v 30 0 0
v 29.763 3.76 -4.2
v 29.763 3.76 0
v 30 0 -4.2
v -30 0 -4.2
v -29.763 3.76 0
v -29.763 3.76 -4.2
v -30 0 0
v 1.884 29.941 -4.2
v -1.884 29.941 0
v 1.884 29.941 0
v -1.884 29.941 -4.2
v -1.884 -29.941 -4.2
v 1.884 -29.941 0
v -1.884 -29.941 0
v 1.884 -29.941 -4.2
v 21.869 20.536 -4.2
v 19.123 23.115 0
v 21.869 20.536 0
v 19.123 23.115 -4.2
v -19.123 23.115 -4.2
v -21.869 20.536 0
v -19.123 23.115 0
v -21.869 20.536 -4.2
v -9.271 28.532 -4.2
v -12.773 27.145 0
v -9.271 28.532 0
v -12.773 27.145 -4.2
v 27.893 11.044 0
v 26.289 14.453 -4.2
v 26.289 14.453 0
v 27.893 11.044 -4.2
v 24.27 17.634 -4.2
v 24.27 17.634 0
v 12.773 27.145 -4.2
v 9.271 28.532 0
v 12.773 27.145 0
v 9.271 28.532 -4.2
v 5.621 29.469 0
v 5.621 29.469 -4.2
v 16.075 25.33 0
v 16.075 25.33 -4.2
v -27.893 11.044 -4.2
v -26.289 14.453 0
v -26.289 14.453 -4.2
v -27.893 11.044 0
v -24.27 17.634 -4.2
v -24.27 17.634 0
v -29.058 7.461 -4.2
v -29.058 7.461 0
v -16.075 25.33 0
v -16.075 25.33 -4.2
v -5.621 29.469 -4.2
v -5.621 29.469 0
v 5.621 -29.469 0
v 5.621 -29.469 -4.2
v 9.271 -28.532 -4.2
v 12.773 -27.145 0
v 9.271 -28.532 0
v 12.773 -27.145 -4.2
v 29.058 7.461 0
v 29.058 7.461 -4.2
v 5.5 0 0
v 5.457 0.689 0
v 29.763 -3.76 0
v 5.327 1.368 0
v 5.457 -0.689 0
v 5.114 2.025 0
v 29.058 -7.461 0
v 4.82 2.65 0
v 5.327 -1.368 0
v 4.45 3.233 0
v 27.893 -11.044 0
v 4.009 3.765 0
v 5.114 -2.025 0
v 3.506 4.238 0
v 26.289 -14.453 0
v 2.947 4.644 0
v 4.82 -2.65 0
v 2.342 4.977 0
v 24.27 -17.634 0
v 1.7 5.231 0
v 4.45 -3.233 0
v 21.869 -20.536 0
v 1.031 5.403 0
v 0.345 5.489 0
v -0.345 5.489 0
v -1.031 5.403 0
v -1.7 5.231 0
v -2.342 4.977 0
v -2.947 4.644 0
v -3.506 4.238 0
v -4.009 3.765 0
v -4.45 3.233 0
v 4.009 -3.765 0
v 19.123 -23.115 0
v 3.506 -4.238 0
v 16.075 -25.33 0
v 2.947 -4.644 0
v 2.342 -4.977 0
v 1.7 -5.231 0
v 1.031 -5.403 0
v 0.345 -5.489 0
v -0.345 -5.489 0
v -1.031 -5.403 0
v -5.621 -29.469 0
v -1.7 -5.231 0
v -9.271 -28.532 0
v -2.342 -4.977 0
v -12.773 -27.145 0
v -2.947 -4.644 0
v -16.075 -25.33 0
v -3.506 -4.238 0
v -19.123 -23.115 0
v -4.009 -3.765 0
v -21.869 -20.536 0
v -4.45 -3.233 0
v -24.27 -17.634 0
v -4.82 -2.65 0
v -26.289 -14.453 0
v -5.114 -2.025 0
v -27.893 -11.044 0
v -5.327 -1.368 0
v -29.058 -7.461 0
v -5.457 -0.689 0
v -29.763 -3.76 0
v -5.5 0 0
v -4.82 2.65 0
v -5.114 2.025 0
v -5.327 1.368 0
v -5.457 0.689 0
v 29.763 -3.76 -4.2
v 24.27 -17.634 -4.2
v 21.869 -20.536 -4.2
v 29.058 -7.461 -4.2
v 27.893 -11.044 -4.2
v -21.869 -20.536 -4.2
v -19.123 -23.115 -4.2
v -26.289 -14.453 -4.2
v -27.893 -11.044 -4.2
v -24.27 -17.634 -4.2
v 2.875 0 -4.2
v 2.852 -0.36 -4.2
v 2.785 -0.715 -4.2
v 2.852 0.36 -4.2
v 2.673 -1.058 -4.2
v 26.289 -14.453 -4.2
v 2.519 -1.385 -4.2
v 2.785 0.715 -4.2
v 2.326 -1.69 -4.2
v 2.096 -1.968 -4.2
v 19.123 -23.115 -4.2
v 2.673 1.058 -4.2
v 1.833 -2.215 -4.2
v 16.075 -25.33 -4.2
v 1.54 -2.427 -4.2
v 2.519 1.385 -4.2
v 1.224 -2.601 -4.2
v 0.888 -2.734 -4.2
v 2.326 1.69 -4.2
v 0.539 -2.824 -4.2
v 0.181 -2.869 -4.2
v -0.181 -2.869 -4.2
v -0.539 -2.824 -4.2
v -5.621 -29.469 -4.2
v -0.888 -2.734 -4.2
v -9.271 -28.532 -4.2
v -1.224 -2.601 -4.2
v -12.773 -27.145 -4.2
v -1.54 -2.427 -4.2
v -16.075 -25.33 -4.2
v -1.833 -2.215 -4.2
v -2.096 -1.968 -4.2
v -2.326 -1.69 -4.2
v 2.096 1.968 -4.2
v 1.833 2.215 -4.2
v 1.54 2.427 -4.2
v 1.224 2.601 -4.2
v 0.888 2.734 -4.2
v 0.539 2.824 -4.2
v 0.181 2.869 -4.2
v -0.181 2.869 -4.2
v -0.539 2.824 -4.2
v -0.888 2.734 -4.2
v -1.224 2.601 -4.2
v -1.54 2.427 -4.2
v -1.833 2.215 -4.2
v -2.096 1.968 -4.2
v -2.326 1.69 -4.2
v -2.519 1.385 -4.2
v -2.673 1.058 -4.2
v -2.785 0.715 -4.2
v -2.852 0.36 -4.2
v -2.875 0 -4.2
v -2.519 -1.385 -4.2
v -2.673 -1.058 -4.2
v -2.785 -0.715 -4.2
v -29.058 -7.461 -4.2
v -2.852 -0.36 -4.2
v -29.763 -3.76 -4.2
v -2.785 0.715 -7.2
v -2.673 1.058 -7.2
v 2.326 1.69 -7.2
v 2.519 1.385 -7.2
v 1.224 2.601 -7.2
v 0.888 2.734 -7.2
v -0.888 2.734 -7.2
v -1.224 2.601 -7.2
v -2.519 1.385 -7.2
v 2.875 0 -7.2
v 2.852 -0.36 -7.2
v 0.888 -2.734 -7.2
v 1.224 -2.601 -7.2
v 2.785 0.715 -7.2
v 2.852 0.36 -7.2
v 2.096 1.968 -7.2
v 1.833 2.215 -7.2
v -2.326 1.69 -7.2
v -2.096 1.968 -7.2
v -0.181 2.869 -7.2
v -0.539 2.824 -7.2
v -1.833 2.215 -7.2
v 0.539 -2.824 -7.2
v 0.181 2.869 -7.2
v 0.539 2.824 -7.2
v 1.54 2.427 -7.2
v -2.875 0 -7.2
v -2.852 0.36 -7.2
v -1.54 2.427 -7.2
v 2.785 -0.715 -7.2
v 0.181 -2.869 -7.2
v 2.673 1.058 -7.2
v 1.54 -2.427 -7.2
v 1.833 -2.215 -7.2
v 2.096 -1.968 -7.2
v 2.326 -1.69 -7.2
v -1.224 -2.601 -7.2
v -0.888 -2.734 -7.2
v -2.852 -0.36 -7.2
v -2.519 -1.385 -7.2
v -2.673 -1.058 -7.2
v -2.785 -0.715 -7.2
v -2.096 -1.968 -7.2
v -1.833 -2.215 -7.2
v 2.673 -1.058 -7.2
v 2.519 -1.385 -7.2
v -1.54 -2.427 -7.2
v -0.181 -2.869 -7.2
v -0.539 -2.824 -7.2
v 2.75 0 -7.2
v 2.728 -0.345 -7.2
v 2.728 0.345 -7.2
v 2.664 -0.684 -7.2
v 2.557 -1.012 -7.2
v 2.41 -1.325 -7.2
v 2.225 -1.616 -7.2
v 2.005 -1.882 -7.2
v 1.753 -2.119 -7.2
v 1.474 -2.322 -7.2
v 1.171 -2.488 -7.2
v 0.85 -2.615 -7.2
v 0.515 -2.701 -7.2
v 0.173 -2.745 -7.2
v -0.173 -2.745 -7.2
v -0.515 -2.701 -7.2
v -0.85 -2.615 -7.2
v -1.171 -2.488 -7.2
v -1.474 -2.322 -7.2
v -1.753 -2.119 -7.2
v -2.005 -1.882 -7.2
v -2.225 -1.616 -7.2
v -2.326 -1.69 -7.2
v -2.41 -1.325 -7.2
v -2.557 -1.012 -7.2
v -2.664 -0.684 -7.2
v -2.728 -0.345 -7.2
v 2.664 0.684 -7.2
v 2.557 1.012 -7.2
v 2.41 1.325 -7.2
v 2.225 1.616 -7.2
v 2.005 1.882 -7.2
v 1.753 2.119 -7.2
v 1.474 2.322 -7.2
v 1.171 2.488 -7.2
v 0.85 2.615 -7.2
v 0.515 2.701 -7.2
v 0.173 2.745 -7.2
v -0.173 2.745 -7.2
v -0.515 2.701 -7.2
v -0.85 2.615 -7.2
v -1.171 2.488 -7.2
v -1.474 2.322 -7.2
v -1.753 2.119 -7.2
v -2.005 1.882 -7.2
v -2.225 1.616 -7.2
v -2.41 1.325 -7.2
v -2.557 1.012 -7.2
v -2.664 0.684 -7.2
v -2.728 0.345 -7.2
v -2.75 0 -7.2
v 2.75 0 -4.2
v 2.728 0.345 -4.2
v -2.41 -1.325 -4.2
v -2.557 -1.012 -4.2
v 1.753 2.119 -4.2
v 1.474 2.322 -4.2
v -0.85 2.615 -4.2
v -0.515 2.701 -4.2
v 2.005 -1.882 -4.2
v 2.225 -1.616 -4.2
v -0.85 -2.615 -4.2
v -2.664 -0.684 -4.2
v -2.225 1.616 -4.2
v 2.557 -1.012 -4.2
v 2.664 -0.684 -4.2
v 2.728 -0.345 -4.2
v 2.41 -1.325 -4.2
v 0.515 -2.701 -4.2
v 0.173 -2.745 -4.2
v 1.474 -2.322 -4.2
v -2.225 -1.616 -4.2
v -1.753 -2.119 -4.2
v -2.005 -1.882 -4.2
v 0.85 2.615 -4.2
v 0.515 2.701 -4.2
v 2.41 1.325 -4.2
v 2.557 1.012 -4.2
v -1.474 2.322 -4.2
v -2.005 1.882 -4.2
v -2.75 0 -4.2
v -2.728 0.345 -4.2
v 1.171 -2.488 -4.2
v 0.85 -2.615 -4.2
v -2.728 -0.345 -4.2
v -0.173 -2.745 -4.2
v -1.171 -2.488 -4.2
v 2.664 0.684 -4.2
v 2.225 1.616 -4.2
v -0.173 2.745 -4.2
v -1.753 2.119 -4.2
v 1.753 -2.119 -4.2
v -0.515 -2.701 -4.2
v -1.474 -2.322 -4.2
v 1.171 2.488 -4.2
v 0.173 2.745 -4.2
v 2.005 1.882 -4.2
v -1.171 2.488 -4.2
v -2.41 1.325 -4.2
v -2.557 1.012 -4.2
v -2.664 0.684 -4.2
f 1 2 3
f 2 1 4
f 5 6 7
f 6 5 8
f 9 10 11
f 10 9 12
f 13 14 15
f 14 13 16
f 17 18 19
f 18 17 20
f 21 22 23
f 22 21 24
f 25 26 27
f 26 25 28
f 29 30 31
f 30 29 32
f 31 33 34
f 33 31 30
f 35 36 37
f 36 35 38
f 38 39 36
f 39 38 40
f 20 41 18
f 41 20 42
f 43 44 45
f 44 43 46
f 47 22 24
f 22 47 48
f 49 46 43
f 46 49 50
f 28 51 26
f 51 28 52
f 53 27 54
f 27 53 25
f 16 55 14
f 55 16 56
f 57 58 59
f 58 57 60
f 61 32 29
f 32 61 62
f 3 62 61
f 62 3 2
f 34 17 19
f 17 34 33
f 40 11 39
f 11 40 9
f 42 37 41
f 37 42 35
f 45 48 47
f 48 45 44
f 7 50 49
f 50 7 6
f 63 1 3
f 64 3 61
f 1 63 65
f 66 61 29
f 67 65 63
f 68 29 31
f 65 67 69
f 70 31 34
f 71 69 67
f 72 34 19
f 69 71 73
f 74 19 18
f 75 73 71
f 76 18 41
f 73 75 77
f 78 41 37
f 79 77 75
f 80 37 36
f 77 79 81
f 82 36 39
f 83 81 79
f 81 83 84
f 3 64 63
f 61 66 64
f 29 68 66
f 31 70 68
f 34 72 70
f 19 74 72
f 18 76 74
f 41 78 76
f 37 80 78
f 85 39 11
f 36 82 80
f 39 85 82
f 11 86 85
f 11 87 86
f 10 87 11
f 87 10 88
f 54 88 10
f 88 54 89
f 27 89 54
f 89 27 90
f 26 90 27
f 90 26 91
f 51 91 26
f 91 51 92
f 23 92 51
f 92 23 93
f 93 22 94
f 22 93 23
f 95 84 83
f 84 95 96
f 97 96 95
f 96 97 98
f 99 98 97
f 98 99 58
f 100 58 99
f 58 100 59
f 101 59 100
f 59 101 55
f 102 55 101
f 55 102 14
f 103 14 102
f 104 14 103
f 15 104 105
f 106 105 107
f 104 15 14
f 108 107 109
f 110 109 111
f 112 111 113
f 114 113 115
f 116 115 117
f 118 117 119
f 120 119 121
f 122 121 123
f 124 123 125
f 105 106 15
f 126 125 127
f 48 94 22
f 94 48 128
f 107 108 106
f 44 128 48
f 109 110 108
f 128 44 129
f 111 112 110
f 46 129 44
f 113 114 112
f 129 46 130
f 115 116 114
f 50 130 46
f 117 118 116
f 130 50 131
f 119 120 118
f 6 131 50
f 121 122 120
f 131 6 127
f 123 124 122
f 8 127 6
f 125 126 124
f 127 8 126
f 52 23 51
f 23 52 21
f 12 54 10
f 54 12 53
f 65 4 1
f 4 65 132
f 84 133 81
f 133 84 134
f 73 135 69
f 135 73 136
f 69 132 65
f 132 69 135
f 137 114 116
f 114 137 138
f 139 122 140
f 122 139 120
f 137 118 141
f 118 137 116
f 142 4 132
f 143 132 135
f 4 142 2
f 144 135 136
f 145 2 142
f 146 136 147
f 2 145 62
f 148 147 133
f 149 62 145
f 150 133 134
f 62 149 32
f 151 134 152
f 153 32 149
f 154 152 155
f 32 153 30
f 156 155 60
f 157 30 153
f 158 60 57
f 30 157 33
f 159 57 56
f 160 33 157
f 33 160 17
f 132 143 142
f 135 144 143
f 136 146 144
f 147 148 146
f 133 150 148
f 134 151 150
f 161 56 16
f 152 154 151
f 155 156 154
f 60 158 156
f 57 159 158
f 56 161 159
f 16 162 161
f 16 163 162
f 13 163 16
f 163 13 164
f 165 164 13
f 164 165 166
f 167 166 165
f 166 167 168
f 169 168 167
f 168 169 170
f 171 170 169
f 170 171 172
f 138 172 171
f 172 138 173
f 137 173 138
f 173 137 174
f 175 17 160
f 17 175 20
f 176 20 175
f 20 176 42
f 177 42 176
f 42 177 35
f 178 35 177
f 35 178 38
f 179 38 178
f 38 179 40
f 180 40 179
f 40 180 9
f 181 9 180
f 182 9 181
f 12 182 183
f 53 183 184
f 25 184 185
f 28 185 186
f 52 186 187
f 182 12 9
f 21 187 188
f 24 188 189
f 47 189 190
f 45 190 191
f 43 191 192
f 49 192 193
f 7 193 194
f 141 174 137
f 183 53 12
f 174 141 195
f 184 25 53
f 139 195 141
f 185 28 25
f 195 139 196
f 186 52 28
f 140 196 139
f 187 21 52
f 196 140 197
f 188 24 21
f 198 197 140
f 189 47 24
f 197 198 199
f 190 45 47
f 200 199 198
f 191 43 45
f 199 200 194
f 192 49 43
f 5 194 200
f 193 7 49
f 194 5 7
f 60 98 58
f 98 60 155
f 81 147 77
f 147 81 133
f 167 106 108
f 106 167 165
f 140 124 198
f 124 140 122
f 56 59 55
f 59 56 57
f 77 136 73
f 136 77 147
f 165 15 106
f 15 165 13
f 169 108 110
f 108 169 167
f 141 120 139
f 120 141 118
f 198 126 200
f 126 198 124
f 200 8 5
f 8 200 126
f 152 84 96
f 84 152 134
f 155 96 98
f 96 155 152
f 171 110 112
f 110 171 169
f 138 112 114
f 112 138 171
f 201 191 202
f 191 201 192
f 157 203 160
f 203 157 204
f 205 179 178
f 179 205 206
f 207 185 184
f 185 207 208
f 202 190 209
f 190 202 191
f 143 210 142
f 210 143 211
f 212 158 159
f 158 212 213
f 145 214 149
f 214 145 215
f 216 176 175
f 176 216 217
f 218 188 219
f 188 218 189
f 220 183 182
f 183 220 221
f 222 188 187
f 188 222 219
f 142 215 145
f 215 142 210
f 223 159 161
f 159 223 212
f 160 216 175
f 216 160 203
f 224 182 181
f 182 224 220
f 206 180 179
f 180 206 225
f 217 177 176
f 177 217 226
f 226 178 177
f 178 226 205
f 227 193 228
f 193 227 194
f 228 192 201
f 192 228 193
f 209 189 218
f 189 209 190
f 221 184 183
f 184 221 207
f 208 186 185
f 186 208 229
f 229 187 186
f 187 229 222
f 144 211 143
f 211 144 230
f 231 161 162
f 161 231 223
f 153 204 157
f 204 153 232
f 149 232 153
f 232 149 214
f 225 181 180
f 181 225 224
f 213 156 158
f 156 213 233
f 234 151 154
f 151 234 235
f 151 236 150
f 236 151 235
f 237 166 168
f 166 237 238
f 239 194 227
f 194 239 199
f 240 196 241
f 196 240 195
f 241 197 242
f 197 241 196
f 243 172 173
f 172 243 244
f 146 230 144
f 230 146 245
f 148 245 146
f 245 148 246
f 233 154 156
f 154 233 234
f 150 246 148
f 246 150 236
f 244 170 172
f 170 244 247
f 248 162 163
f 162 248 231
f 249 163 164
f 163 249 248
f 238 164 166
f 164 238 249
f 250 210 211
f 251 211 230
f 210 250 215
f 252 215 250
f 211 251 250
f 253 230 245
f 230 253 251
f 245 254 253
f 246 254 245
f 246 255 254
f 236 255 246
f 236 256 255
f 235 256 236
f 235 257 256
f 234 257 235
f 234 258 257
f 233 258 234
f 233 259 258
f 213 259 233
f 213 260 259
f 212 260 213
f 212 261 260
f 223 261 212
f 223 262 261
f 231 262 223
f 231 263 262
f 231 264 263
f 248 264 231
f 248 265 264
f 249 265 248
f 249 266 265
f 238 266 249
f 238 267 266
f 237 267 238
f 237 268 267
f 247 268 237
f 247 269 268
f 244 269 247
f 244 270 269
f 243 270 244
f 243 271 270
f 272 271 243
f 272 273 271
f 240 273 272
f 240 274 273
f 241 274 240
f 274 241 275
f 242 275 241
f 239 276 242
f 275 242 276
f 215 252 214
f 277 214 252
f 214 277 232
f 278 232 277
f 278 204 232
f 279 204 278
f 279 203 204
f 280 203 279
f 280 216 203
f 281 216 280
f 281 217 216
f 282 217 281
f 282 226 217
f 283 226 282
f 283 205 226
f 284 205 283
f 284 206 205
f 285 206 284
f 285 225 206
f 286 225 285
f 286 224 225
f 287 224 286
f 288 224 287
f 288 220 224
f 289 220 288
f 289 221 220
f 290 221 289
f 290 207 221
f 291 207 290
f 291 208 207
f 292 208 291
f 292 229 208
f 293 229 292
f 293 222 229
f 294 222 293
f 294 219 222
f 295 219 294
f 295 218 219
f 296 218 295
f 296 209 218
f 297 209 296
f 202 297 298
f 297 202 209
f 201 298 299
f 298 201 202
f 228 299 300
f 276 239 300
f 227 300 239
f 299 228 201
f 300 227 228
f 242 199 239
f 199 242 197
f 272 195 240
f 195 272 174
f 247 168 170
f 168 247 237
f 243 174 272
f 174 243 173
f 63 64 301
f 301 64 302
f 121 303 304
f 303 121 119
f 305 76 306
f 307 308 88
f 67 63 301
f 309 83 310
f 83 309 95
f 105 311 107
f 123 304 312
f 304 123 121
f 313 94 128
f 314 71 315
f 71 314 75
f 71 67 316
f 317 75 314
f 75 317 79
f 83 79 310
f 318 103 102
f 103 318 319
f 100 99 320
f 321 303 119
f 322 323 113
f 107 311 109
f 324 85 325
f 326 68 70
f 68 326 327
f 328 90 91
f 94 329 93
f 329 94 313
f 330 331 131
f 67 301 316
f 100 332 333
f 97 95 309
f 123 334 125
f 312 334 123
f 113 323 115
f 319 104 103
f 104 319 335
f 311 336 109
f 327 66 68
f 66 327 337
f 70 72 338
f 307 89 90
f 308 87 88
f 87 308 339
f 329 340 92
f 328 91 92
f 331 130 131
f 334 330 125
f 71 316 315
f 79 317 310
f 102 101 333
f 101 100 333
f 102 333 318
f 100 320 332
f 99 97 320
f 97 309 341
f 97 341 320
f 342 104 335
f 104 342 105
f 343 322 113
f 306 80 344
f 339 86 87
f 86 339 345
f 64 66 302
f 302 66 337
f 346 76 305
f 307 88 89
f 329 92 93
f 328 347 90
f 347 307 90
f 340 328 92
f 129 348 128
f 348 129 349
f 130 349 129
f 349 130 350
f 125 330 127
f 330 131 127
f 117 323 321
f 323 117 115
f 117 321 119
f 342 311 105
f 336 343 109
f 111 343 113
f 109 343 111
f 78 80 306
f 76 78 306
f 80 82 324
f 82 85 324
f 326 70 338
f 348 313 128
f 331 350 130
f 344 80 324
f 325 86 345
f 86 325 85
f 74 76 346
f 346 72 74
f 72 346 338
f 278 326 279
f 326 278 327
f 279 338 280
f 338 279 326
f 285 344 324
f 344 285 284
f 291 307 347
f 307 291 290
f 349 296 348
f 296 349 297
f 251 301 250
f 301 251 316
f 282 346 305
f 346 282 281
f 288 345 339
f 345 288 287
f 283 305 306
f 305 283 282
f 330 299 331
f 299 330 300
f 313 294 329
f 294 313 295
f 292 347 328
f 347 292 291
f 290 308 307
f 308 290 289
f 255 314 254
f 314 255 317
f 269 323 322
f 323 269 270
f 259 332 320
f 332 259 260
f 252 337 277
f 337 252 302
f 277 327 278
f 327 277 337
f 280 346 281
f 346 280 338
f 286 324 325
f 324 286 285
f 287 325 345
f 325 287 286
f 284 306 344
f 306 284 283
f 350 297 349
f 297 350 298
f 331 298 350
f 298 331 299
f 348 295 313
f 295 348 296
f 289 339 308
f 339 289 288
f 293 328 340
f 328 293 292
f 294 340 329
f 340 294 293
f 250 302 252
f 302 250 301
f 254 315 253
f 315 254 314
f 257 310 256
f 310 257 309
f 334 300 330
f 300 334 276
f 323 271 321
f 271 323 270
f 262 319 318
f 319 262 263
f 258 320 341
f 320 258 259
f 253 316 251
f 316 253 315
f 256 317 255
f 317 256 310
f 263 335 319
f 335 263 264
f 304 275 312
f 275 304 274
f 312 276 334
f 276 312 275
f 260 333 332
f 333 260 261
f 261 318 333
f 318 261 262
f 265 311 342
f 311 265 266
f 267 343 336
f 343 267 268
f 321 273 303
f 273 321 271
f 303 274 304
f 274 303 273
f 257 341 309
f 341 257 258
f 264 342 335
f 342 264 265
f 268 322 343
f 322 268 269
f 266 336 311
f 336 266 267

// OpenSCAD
$fn = 50;


difference() {
	union() {
		translate(v = [0, 0, -4.2000000000]) {
			cylinder(h = 4.2000000000, r = 30.0000000000);
		}
		translate(v = [0, 0, -7.2000000000]) {
			cylinder(h = 7.2000000000, r = 2.8750000000);
		}
	}
	union() {
		translate(v = [0, 0, 0]) {
			rotate(a = [0, 0, 0]) {
				difference() {
					union() {
						translate(v = [0, 0, -7.2000000000]) {
							cylinder(h = 7.2000000000, r = 2.2500000000);
						}
						translate(v = [0, 0, -4.2000000000]) {
							cylinder(h = 4.2000000000, r1 = 2.7500000000, r2 = 5.5000000000);
						}
						translate(v = [0, 0, -7.2000000000]) {
							cylinder(h = 7.2000000000, r = 2.7500000000);
						}
						translate(v = [0, 0, -7.2000000000]) {
							cylinder(h = 7.2000000000, r = 2.2500000000);
						}
					}
					union();
				}
			}
		}
	}
}
